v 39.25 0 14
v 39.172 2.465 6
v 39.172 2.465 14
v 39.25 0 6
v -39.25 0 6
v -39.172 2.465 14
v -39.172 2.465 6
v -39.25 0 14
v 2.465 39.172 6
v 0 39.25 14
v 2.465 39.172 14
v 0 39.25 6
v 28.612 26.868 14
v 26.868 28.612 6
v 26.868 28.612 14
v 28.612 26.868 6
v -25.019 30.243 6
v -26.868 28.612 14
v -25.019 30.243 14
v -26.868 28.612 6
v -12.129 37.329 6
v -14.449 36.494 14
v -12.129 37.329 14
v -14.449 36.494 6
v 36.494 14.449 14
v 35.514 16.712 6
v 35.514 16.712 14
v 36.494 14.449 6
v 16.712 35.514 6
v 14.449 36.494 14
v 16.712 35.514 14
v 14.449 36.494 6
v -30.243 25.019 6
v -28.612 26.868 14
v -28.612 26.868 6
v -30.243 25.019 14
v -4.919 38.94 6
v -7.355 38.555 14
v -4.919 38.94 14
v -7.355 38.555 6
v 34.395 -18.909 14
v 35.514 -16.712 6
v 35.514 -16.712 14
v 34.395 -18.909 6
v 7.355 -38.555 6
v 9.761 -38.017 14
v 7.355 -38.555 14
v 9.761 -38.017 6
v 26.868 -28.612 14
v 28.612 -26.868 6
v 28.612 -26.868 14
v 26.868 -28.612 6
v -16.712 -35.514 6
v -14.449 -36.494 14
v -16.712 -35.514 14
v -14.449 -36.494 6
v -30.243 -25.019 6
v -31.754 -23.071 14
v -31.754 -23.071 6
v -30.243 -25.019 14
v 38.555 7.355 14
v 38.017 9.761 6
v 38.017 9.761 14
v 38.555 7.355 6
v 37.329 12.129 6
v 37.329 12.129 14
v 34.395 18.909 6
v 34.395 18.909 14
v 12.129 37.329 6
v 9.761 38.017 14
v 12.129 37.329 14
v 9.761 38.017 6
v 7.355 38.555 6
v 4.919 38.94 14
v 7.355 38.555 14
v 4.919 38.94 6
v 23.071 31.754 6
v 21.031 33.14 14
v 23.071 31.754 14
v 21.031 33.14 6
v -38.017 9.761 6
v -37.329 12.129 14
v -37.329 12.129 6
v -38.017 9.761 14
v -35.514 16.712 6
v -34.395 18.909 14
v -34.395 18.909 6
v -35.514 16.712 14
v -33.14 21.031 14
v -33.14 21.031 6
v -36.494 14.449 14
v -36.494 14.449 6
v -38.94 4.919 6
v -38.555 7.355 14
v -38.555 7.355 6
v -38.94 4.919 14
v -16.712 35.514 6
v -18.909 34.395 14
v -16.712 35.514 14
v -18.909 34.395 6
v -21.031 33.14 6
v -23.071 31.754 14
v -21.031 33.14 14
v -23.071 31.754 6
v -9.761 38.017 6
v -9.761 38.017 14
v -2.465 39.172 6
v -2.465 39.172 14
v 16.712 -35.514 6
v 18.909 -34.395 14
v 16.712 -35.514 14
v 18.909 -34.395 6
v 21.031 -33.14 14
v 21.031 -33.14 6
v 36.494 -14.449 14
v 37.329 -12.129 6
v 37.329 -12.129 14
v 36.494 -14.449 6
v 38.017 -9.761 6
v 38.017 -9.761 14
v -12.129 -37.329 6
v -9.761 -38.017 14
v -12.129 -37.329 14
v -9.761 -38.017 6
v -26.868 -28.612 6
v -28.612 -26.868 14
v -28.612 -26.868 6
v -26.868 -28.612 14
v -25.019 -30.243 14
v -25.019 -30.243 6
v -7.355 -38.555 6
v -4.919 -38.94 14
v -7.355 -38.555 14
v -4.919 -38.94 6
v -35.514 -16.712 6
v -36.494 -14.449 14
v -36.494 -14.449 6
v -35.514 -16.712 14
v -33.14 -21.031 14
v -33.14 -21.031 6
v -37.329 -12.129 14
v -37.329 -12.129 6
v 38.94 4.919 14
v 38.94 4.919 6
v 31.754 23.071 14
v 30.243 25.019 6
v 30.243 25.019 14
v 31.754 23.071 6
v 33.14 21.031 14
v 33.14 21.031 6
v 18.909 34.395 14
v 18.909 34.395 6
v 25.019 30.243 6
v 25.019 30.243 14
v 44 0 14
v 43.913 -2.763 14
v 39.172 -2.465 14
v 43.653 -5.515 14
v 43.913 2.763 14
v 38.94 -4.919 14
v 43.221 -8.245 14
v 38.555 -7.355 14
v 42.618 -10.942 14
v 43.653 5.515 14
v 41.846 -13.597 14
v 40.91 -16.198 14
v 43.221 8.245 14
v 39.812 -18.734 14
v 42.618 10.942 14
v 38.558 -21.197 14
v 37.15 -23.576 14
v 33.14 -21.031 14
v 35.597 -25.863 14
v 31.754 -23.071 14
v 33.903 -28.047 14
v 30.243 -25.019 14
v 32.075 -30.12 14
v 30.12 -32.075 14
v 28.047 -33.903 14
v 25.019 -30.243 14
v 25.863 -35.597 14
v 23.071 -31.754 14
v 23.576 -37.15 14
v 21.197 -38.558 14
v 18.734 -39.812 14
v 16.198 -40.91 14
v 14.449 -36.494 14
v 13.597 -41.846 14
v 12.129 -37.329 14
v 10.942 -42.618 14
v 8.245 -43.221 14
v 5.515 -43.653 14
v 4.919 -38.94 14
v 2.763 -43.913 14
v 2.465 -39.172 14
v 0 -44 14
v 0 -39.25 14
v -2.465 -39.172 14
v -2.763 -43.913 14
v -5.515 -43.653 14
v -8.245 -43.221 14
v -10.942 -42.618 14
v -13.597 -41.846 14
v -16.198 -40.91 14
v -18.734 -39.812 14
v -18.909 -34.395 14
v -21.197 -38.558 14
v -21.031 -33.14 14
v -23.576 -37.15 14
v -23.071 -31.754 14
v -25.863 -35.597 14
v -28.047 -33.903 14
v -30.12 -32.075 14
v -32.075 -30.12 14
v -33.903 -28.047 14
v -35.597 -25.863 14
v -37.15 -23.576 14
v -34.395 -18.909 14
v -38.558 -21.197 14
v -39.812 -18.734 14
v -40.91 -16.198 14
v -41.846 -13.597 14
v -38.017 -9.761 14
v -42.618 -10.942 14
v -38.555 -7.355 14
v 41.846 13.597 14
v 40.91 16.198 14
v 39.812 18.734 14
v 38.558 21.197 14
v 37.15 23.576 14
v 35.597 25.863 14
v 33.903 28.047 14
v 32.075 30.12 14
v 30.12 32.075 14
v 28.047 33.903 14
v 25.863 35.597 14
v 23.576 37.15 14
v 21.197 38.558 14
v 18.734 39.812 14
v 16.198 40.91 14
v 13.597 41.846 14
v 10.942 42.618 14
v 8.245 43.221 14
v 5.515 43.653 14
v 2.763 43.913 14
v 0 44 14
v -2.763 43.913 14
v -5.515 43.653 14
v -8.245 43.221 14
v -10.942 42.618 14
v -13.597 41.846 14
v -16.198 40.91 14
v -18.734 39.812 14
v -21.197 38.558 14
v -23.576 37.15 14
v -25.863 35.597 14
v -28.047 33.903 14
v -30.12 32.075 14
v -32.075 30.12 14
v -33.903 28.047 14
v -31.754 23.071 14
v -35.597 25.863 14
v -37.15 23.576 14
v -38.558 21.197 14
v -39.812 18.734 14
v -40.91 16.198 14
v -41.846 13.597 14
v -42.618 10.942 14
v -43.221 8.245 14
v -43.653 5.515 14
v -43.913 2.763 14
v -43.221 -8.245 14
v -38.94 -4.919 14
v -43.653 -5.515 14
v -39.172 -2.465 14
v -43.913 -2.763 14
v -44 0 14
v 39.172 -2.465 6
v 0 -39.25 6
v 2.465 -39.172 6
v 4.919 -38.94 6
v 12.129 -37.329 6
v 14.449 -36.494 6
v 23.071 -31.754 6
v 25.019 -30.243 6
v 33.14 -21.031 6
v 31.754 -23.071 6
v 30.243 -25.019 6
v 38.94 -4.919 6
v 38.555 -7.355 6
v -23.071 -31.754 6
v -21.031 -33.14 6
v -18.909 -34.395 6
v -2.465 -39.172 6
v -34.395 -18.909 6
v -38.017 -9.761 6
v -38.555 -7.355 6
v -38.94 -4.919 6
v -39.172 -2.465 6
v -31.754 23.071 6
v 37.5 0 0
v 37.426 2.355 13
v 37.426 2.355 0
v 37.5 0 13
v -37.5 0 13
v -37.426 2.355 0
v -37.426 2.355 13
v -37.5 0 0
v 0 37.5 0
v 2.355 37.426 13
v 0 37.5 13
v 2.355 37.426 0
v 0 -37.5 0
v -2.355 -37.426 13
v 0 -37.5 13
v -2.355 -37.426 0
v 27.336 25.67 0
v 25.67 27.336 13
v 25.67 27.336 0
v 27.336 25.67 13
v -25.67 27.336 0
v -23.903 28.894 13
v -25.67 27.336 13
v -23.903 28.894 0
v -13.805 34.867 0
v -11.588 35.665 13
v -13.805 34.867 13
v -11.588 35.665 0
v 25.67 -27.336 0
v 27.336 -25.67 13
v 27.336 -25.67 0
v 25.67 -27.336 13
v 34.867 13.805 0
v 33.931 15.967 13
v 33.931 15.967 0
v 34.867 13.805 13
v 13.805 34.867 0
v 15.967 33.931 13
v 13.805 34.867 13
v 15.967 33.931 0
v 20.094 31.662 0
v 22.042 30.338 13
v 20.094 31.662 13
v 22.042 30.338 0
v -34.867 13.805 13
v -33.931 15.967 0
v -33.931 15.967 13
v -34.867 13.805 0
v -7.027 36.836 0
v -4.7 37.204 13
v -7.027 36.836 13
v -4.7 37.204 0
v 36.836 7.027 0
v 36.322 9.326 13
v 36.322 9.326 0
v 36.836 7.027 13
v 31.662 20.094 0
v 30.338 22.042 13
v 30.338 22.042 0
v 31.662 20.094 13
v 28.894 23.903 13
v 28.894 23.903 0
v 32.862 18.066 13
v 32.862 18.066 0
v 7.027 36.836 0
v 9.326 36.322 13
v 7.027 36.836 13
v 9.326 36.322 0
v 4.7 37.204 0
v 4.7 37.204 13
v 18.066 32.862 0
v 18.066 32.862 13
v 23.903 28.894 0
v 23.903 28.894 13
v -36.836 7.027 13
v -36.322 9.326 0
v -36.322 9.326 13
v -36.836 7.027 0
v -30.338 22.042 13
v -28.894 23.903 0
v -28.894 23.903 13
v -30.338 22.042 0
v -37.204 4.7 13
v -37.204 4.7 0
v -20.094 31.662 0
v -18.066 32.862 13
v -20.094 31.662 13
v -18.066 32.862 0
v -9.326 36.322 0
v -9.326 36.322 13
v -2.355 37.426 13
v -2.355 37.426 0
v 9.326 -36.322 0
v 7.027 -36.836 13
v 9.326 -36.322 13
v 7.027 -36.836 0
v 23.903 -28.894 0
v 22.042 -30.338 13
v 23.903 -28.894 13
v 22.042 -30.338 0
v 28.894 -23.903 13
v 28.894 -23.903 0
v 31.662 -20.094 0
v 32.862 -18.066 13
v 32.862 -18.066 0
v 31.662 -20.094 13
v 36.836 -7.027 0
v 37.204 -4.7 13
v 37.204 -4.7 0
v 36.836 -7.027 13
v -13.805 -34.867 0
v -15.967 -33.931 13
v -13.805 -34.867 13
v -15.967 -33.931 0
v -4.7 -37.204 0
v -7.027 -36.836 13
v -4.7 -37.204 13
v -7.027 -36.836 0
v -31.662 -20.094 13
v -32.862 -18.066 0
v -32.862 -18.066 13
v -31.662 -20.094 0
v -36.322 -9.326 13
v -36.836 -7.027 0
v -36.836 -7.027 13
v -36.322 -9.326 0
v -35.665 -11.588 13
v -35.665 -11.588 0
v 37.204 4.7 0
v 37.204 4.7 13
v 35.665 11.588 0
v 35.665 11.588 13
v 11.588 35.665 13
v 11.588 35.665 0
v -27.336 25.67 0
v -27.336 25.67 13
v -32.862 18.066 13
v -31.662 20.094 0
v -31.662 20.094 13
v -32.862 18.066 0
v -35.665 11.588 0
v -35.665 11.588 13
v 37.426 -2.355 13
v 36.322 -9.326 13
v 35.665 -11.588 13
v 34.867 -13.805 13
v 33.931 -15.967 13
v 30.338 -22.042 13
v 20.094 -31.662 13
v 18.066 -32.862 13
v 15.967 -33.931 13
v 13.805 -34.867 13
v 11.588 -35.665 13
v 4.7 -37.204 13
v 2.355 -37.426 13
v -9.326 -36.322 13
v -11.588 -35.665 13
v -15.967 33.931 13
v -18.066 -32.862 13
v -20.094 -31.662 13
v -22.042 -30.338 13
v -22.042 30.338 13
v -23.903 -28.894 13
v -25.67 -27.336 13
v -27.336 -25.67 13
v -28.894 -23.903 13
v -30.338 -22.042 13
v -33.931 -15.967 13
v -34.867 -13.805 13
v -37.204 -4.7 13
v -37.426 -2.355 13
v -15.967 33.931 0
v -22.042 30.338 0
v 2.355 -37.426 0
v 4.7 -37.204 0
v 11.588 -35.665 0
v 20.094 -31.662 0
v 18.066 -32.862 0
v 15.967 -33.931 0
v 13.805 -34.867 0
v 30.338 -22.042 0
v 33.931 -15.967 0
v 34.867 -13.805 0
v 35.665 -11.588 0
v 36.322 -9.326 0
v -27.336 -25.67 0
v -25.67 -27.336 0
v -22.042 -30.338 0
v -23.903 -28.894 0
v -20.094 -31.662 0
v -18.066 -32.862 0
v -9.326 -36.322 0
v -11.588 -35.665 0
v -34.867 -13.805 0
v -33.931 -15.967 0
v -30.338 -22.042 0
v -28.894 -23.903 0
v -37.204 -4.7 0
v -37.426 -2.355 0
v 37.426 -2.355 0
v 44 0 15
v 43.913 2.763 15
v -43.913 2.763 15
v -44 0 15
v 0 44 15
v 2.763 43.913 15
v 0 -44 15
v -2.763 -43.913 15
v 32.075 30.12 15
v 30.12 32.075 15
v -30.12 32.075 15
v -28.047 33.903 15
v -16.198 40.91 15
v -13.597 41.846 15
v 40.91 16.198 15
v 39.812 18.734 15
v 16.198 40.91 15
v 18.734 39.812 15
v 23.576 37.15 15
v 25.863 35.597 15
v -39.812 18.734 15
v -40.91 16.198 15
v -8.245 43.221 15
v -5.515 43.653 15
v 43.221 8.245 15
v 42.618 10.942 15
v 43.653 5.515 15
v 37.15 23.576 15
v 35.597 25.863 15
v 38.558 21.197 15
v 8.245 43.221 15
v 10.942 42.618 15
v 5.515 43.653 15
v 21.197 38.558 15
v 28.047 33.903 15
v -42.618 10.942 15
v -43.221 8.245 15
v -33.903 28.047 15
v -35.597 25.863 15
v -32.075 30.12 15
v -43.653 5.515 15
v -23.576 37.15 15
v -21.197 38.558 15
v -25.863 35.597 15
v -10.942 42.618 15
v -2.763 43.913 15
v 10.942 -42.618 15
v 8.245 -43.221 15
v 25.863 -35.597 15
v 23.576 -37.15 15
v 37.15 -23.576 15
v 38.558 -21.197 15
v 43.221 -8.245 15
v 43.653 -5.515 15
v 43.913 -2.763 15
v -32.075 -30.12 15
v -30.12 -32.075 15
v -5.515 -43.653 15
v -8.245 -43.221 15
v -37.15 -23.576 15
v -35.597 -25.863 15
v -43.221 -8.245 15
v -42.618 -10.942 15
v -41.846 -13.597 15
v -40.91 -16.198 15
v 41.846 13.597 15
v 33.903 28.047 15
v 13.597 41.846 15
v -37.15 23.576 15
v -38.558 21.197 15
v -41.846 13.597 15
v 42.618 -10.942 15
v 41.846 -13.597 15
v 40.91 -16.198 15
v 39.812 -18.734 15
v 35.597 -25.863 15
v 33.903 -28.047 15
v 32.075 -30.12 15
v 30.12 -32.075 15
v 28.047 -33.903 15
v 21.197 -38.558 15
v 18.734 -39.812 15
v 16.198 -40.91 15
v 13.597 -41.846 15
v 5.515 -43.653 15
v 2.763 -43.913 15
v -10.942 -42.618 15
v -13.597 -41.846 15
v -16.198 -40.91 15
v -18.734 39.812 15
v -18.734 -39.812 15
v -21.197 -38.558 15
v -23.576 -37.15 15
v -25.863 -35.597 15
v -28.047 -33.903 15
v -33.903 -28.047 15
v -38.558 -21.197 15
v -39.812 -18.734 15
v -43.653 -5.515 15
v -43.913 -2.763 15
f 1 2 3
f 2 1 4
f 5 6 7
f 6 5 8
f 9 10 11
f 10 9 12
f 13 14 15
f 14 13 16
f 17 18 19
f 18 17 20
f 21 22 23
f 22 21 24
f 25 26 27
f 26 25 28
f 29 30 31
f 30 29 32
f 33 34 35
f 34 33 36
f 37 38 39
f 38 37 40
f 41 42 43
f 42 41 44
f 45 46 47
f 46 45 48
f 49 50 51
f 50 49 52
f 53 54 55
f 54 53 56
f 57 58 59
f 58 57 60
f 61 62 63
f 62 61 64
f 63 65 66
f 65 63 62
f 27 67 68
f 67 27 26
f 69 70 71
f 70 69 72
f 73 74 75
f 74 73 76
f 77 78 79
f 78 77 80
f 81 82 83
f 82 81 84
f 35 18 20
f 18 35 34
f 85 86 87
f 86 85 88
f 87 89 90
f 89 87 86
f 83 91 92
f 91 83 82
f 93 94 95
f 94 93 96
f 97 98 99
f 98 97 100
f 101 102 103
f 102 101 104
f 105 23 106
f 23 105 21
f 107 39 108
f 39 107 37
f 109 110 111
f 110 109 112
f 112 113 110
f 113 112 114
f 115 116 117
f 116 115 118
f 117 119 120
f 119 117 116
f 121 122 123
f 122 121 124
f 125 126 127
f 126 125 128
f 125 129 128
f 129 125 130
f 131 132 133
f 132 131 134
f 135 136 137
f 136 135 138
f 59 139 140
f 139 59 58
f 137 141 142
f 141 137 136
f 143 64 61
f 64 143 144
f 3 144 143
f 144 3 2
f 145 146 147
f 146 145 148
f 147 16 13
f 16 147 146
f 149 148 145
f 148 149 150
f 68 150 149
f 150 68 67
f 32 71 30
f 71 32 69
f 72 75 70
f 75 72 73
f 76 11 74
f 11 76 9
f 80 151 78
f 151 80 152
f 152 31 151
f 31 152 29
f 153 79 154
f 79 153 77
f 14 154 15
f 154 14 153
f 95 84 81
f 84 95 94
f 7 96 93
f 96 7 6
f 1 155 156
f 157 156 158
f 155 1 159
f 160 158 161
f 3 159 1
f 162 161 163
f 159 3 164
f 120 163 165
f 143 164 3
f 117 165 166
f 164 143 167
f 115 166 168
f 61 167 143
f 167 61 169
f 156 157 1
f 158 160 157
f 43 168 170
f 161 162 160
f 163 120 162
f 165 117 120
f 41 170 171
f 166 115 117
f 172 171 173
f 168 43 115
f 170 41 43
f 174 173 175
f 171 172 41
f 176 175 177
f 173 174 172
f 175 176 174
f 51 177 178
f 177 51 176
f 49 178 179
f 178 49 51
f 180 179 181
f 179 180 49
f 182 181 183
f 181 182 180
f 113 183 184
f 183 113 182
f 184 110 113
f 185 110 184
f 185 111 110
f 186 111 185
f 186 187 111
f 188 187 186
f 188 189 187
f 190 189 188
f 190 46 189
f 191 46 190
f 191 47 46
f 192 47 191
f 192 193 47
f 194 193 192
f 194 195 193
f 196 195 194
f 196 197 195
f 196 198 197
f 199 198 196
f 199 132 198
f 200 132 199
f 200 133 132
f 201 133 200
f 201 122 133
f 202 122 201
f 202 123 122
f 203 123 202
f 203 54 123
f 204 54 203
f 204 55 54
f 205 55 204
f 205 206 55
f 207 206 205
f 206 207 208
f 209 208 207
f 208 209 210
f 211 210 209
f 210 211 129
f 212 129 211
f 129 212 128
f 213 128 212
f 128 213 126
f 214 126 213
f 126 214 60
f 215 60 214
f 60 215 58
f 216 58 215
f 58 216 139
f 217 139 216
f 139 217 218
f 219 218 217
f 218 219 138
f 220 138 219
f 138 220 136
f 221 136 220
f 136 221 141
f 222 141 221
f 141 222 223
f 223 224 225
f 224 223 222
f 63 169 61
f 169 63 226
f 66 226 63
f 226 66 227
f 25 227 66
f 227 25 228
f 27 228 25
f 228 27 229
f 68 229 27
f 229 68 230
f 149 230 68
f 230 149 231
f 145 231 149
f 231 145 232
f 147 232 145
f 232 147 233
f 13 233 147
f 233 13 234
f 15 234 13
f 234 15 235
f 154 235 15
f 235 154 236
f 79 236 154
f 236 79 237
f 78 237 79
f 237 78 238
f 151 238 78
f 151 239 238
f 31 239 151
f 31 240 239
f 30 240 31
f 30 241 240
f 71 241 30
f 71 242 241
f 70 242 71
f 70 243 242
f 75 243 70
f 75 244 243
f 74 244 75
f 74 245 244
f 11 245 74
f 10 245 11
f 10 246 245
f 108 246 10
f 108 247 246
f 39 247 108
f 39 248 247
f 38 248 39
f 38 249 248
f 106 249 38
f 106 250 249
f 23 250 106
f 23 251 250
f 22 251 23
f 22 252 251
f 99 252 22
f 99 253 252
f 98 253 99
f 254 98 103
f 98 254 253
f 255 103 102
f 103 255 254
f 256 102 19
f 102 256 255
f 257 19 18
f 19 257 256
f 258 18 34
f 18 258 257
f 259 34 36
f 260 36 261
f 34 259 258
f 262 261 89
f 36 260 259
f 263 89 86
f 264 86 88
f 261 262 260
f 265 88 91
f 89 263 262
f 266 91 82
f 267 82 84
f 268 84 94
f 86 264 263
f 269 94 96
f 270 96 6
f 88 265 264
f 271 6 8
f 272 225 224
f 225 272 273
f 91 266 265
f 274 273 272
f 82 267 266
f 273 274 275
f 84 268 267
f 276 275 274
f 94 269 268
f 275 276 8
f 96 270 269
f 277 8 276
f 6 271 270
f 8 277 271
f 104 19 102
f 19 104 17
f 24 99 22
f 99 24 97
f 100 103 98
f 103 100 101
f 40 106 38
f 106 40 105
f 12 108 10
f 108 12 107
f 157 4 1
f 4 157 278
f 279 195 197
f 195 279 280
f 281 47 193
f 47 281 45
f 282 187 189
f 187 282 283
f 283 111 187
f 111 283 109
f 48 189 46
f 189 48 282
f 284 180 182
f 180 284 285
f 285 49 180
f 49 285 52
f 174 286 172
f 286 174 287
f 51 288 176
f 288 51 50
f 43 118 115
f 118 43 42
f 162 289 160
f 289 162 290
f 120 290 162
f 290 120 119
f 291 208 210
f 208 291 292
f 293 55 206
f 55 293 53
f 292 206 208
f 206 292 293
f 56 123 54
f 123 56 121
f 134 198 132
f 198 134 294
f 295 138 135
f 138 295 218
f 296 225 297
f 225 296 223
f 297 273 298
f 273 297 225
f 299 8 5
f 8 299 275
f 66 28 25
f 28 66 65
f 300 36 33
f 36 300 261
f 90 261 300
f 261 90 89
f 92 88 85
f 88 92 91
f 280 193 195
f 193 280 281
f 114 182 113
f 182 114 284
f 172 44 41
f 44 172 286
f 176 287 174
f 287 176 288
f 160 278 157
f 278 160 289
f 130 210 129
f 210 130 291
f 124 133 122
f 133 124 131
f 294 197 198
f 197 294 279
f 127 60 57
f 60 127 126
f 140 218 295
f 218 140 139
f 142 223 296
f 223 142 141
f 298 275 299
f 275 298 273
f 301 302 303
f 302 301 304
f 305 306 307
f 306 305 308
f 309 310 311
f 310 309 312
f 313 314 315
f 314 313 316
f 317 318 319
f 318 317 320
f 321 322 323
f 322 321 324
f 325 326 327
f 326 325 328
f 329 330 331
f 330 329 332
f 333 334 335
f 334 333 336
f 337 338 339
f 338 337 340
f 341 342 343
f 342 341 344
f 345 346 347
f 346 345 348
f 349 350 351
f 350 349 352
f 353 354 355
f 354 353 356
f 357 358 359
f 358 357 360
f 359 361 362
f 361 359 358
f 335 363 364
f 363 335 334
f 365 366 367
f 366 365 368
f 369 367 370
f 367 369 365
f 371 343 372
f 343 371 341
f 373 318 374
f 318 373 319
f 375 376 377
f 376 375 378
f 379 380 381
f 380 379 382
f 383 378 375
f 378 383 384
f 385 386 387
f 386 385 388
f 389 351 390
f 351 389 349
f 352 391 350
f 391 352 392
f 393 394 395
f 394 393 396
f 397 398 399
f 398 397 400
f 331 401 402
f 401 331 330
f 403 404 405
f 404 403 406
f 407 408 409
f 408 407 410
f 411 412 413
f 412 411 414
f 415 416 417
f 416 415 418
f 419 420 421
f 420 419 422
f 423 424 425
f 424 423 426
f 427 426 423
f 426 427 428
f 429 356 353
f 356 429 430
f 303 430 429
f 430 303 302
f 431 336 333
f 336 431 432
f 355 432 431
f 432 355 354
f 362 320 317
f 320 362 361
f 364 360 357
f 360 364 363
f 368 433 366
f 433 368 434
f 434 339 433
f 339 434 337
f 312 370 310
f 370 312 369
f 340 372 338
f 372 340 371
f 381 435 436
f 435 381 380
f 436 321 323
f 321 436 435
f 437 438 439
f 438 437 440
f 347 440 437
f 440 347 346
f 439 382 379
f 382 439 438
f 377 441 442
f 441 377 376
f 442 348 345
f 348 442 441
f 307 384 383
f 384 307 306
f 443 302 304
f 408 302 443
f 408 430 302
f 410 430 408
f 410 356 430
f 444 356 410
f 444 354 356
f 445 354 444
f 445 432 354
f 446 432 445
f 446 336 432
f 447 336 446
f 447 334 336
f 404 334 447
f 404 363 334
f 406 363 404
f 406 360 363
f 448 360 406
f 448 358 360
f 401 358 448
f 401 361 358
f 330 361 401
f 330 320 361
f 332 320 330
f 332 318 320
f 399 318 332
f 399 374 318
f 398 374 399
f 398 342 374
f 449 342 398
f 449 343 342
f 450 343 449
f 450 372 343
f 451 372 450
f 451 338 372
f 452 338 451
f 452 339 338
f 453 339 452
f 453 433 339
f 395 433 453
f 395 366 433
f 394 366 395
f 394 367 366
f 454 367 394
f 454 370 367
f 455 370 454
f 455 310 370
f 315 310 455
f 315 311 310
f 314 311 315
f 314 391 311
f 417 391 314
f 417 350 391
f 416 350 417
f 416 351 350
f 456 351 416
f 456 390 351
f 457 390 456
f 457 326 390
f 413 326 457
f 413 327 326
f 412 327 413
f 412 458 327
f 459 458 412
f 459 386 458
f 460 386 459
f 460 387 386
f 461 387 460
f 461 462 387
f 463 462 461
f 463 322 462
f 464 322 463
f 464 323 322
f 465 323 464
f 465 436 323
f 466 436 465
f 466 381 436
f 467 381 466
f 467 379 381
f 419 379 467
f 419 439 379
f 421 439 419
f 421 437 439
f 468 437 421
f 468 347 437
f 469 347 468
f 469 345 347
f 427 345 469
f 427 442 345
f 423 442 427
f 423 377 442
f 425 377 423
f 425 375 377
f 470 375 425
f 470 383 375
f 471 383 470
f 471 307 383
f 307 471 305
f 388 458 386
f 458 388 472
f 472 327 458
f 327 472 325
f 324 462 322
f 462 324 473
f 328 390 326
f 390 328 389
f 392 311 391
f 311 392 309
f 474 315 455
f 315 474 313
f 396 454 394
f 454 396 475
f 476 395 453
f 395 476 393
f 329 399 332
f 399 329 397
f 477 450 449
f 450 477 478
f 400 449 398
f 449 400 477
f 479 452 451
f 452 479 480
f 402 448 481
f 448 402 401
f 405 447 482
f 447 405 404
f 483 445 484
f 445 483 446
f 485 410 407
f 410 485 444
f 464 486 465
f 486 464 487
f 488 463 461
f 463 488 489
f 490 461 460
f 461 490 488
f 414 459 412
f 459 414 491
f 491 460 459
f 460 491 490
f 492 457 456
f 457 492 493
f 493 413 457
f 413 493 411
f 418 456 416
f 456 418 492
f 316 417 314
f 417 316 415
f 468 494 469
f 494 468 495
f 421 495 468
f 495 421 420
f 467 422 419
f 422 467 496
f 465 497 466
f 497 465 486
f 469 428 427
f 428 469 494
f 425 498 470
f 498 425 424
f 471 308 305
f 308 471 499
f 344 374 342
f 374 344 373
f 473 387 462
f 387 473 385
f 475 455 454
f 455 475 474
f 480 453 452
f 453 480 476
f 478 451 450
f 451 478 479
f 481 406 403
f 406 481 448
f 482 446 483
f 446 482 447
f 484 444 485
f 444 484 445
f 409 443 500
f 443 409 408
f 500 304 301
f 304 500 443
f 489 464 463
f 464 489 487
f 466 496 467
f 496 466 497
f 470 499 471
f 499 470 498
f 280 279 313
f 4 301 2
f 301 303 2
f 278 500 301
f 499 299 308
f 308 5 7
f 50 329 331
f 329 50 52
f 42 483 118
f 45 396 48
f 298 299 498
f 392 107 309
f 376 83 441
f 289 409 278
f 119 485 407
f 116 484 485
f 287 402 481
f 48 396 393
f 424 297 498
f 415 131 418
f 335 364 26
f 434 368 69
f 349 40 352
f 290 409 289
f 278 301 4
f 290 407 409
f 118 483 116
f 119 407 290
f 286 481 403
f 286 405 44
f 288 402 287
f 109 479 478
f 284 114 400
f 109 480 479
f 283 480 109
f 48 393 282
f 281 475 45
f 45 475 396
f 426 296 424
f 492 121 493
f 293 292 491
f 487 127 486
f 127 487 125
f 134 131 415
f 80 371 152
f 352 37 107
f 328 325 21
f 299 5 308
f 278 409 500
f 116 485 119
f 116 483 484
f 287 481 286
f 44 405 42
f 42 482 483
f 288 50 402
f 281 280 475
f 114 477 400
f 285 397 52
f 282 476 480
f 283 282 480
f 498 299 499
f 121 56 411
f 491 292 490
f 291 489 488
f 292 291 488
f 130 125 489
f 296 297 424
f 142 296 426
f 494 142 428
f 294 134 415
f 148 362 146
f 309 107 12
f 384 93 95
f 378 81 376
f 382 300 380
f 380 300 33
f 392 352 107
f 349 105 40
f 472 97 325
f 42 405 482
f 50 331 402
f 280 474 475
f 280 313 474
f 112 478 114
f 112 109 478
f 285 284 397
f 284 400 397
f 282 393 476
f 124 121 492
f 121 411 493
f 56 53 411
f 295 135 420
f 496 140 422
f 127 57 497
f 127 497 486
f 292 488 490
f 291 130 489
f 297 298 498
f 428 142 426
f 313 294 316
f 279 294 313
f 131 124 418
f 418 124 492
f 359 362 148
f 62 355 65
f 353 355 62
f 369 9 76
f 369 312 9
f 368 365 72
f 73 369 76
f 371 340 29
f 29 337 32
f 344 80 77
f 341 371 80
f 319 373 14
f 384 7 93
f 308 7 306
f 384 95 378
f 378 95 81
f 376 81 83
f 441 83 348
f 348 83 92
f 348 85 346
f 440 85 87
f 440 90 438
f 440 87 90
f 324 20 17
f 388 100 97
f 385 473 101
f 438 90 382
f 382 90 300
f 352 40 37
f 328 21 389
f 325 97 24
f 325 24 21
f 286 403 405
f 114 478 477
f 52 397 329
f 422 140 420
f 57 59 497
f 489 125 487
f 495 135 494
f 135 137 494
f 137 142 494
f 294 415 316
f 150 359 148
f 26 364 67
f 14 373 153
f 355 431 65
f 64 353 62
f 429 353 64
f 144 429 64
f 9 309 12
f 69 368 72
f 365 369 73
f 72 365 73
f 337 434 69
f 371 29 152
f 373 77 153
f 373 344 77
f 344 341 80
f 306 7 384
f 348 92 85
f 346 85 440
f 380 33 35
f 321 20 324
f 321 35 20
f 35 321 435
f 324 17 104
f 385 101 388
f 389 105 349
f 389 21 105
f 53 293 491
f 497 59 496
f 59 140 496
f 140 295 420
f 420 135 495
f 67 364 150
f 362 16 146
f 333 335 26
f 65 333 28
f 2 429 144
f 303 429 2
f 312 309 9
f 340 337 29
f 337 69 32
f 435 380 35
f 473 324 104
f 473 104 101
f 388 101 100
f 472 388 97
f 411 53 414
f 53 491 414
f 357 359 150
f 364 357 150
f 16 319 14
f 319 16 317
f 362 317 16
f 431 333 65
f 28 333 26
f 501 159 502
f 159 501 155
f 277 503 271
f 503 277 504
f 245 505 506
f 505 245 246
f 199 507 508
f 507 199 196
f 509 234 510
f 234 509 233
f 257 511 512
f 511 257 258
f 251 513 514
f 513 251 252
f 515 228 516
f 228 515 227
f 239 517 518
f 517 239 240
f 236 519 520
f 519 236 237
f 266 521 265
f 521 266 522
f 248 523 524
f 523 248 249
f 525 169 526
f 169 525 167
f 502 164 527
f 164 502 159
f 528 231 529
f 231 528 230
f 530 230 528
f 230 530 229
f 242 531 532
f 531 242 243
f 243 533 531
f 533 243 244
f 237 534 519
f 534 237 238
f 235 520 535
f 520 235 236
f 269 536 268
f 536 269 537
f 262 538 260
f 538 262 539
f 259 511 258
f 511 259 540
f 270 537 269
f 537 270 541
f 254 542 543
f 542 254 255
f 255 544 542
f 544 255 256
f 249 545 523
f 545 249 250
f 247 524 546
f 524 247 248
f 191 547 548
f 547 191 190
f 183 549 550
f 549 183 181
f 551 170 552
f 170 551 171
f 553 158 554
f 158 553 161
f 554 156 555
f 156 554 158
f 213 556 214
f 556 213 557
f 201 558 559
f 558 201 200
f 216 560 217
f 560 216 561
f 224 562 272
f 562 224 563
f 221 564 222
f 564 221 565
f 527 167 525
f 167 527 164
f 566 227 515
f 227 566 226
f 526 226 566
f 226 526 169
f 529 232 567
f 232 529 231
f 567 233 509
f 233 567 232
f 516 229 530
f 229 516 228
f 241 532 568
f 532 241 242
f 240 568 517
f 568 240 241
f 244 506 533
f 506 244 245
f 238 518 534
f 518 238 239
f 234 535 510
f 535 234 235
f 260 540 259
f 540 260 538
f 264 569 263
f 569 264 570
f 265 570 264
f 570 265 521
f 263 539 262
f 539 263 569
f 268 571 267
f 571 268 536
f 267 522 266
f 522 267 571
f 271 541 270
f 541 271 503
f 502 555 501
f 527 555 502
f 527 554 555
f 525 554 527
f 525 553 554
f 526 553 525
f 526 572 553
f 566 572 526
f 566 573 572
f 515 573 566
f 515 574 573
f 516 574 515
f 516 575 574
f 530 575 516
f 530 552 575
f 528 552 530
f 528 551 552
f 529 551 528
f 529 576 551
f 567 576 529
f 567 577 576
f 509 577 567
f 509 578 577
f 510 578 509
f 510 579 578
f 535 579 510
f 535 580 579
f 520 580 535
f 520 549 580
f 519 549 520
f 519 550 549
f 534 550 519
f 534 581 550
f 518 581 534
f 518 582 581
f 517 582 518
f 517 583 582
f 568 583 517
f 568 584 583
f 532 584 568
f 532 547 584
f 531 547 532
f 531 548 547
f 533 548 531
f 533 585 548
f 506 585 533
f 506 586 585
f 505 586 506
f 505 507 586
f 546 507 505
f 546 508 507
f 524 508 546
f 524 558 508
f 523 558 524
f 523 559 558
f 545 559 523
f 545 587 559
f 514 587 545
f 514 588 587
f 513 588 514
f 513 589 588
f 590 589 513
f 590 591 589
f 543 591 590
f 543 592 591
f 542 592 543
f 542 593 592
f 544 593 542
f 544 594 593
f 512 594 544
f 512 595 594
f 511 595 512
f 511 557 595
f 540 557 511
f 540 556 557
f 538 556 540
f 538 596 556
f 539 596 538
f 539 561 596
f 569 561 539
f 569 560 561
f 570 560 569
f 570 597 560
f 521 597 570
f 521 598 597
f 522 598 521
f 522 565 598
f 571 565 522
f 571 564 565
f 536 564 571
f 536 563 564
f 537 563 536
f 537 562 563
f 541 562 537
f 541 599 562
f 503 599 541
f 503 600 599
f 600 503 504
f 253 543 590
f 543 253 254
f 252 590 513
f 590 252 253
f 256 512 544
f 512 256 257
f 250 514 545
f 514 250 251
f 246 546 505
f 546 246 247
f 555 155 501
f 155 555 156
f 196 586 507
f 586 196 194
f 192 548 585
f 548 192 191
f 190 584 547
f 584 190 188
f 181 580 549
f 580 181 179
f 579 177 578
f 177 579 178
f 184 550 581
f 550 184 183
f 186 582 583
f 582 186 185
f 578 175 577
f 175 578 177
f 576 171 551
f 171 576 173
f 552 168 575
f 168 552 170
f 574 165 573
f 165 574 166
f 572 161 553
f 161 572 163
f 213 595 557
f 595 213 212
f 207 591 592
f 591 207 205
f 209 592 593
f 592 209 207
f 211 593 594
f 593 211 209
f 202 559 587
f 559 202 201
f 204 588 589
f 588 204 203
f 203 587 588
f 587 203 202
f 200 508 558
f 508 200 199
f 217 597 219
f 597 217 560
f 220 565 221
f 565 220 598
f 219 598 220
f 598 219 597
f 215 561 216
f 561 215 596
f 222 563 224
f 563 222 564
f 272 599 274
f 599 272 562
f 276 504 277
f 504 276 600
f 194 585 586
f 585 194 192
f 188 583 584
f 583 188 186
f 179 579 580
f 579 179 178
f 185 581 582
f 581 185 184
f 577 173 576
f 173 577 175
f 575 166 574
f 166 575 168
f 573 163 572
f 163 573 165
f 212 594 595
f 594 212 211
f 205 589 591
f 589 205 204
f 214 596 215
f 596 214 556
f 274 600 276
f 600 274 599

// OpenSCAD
translate([0,0,14])
cylinder(h = 1, r1 = 88/2, r2 = 88/2, center = false, $fn=100);

translate([0,0,6])
difference()
{
cylinder(h = 8, r1 = 78.5/2, r2 = 78.5/2, center = false, $fn=100);
cylinder(h = 14, r1 = 75/2, r2 = 75/2, center = true, $fn=100);
};

difference()
{
cylinder(h = 6, r1 = 75/2, r2 = 78.5/2, center = false, $fn=100);
cylinder(h = 14, r1 = 75/2, r2 = 75/2, center = true, $fn=100);
};
